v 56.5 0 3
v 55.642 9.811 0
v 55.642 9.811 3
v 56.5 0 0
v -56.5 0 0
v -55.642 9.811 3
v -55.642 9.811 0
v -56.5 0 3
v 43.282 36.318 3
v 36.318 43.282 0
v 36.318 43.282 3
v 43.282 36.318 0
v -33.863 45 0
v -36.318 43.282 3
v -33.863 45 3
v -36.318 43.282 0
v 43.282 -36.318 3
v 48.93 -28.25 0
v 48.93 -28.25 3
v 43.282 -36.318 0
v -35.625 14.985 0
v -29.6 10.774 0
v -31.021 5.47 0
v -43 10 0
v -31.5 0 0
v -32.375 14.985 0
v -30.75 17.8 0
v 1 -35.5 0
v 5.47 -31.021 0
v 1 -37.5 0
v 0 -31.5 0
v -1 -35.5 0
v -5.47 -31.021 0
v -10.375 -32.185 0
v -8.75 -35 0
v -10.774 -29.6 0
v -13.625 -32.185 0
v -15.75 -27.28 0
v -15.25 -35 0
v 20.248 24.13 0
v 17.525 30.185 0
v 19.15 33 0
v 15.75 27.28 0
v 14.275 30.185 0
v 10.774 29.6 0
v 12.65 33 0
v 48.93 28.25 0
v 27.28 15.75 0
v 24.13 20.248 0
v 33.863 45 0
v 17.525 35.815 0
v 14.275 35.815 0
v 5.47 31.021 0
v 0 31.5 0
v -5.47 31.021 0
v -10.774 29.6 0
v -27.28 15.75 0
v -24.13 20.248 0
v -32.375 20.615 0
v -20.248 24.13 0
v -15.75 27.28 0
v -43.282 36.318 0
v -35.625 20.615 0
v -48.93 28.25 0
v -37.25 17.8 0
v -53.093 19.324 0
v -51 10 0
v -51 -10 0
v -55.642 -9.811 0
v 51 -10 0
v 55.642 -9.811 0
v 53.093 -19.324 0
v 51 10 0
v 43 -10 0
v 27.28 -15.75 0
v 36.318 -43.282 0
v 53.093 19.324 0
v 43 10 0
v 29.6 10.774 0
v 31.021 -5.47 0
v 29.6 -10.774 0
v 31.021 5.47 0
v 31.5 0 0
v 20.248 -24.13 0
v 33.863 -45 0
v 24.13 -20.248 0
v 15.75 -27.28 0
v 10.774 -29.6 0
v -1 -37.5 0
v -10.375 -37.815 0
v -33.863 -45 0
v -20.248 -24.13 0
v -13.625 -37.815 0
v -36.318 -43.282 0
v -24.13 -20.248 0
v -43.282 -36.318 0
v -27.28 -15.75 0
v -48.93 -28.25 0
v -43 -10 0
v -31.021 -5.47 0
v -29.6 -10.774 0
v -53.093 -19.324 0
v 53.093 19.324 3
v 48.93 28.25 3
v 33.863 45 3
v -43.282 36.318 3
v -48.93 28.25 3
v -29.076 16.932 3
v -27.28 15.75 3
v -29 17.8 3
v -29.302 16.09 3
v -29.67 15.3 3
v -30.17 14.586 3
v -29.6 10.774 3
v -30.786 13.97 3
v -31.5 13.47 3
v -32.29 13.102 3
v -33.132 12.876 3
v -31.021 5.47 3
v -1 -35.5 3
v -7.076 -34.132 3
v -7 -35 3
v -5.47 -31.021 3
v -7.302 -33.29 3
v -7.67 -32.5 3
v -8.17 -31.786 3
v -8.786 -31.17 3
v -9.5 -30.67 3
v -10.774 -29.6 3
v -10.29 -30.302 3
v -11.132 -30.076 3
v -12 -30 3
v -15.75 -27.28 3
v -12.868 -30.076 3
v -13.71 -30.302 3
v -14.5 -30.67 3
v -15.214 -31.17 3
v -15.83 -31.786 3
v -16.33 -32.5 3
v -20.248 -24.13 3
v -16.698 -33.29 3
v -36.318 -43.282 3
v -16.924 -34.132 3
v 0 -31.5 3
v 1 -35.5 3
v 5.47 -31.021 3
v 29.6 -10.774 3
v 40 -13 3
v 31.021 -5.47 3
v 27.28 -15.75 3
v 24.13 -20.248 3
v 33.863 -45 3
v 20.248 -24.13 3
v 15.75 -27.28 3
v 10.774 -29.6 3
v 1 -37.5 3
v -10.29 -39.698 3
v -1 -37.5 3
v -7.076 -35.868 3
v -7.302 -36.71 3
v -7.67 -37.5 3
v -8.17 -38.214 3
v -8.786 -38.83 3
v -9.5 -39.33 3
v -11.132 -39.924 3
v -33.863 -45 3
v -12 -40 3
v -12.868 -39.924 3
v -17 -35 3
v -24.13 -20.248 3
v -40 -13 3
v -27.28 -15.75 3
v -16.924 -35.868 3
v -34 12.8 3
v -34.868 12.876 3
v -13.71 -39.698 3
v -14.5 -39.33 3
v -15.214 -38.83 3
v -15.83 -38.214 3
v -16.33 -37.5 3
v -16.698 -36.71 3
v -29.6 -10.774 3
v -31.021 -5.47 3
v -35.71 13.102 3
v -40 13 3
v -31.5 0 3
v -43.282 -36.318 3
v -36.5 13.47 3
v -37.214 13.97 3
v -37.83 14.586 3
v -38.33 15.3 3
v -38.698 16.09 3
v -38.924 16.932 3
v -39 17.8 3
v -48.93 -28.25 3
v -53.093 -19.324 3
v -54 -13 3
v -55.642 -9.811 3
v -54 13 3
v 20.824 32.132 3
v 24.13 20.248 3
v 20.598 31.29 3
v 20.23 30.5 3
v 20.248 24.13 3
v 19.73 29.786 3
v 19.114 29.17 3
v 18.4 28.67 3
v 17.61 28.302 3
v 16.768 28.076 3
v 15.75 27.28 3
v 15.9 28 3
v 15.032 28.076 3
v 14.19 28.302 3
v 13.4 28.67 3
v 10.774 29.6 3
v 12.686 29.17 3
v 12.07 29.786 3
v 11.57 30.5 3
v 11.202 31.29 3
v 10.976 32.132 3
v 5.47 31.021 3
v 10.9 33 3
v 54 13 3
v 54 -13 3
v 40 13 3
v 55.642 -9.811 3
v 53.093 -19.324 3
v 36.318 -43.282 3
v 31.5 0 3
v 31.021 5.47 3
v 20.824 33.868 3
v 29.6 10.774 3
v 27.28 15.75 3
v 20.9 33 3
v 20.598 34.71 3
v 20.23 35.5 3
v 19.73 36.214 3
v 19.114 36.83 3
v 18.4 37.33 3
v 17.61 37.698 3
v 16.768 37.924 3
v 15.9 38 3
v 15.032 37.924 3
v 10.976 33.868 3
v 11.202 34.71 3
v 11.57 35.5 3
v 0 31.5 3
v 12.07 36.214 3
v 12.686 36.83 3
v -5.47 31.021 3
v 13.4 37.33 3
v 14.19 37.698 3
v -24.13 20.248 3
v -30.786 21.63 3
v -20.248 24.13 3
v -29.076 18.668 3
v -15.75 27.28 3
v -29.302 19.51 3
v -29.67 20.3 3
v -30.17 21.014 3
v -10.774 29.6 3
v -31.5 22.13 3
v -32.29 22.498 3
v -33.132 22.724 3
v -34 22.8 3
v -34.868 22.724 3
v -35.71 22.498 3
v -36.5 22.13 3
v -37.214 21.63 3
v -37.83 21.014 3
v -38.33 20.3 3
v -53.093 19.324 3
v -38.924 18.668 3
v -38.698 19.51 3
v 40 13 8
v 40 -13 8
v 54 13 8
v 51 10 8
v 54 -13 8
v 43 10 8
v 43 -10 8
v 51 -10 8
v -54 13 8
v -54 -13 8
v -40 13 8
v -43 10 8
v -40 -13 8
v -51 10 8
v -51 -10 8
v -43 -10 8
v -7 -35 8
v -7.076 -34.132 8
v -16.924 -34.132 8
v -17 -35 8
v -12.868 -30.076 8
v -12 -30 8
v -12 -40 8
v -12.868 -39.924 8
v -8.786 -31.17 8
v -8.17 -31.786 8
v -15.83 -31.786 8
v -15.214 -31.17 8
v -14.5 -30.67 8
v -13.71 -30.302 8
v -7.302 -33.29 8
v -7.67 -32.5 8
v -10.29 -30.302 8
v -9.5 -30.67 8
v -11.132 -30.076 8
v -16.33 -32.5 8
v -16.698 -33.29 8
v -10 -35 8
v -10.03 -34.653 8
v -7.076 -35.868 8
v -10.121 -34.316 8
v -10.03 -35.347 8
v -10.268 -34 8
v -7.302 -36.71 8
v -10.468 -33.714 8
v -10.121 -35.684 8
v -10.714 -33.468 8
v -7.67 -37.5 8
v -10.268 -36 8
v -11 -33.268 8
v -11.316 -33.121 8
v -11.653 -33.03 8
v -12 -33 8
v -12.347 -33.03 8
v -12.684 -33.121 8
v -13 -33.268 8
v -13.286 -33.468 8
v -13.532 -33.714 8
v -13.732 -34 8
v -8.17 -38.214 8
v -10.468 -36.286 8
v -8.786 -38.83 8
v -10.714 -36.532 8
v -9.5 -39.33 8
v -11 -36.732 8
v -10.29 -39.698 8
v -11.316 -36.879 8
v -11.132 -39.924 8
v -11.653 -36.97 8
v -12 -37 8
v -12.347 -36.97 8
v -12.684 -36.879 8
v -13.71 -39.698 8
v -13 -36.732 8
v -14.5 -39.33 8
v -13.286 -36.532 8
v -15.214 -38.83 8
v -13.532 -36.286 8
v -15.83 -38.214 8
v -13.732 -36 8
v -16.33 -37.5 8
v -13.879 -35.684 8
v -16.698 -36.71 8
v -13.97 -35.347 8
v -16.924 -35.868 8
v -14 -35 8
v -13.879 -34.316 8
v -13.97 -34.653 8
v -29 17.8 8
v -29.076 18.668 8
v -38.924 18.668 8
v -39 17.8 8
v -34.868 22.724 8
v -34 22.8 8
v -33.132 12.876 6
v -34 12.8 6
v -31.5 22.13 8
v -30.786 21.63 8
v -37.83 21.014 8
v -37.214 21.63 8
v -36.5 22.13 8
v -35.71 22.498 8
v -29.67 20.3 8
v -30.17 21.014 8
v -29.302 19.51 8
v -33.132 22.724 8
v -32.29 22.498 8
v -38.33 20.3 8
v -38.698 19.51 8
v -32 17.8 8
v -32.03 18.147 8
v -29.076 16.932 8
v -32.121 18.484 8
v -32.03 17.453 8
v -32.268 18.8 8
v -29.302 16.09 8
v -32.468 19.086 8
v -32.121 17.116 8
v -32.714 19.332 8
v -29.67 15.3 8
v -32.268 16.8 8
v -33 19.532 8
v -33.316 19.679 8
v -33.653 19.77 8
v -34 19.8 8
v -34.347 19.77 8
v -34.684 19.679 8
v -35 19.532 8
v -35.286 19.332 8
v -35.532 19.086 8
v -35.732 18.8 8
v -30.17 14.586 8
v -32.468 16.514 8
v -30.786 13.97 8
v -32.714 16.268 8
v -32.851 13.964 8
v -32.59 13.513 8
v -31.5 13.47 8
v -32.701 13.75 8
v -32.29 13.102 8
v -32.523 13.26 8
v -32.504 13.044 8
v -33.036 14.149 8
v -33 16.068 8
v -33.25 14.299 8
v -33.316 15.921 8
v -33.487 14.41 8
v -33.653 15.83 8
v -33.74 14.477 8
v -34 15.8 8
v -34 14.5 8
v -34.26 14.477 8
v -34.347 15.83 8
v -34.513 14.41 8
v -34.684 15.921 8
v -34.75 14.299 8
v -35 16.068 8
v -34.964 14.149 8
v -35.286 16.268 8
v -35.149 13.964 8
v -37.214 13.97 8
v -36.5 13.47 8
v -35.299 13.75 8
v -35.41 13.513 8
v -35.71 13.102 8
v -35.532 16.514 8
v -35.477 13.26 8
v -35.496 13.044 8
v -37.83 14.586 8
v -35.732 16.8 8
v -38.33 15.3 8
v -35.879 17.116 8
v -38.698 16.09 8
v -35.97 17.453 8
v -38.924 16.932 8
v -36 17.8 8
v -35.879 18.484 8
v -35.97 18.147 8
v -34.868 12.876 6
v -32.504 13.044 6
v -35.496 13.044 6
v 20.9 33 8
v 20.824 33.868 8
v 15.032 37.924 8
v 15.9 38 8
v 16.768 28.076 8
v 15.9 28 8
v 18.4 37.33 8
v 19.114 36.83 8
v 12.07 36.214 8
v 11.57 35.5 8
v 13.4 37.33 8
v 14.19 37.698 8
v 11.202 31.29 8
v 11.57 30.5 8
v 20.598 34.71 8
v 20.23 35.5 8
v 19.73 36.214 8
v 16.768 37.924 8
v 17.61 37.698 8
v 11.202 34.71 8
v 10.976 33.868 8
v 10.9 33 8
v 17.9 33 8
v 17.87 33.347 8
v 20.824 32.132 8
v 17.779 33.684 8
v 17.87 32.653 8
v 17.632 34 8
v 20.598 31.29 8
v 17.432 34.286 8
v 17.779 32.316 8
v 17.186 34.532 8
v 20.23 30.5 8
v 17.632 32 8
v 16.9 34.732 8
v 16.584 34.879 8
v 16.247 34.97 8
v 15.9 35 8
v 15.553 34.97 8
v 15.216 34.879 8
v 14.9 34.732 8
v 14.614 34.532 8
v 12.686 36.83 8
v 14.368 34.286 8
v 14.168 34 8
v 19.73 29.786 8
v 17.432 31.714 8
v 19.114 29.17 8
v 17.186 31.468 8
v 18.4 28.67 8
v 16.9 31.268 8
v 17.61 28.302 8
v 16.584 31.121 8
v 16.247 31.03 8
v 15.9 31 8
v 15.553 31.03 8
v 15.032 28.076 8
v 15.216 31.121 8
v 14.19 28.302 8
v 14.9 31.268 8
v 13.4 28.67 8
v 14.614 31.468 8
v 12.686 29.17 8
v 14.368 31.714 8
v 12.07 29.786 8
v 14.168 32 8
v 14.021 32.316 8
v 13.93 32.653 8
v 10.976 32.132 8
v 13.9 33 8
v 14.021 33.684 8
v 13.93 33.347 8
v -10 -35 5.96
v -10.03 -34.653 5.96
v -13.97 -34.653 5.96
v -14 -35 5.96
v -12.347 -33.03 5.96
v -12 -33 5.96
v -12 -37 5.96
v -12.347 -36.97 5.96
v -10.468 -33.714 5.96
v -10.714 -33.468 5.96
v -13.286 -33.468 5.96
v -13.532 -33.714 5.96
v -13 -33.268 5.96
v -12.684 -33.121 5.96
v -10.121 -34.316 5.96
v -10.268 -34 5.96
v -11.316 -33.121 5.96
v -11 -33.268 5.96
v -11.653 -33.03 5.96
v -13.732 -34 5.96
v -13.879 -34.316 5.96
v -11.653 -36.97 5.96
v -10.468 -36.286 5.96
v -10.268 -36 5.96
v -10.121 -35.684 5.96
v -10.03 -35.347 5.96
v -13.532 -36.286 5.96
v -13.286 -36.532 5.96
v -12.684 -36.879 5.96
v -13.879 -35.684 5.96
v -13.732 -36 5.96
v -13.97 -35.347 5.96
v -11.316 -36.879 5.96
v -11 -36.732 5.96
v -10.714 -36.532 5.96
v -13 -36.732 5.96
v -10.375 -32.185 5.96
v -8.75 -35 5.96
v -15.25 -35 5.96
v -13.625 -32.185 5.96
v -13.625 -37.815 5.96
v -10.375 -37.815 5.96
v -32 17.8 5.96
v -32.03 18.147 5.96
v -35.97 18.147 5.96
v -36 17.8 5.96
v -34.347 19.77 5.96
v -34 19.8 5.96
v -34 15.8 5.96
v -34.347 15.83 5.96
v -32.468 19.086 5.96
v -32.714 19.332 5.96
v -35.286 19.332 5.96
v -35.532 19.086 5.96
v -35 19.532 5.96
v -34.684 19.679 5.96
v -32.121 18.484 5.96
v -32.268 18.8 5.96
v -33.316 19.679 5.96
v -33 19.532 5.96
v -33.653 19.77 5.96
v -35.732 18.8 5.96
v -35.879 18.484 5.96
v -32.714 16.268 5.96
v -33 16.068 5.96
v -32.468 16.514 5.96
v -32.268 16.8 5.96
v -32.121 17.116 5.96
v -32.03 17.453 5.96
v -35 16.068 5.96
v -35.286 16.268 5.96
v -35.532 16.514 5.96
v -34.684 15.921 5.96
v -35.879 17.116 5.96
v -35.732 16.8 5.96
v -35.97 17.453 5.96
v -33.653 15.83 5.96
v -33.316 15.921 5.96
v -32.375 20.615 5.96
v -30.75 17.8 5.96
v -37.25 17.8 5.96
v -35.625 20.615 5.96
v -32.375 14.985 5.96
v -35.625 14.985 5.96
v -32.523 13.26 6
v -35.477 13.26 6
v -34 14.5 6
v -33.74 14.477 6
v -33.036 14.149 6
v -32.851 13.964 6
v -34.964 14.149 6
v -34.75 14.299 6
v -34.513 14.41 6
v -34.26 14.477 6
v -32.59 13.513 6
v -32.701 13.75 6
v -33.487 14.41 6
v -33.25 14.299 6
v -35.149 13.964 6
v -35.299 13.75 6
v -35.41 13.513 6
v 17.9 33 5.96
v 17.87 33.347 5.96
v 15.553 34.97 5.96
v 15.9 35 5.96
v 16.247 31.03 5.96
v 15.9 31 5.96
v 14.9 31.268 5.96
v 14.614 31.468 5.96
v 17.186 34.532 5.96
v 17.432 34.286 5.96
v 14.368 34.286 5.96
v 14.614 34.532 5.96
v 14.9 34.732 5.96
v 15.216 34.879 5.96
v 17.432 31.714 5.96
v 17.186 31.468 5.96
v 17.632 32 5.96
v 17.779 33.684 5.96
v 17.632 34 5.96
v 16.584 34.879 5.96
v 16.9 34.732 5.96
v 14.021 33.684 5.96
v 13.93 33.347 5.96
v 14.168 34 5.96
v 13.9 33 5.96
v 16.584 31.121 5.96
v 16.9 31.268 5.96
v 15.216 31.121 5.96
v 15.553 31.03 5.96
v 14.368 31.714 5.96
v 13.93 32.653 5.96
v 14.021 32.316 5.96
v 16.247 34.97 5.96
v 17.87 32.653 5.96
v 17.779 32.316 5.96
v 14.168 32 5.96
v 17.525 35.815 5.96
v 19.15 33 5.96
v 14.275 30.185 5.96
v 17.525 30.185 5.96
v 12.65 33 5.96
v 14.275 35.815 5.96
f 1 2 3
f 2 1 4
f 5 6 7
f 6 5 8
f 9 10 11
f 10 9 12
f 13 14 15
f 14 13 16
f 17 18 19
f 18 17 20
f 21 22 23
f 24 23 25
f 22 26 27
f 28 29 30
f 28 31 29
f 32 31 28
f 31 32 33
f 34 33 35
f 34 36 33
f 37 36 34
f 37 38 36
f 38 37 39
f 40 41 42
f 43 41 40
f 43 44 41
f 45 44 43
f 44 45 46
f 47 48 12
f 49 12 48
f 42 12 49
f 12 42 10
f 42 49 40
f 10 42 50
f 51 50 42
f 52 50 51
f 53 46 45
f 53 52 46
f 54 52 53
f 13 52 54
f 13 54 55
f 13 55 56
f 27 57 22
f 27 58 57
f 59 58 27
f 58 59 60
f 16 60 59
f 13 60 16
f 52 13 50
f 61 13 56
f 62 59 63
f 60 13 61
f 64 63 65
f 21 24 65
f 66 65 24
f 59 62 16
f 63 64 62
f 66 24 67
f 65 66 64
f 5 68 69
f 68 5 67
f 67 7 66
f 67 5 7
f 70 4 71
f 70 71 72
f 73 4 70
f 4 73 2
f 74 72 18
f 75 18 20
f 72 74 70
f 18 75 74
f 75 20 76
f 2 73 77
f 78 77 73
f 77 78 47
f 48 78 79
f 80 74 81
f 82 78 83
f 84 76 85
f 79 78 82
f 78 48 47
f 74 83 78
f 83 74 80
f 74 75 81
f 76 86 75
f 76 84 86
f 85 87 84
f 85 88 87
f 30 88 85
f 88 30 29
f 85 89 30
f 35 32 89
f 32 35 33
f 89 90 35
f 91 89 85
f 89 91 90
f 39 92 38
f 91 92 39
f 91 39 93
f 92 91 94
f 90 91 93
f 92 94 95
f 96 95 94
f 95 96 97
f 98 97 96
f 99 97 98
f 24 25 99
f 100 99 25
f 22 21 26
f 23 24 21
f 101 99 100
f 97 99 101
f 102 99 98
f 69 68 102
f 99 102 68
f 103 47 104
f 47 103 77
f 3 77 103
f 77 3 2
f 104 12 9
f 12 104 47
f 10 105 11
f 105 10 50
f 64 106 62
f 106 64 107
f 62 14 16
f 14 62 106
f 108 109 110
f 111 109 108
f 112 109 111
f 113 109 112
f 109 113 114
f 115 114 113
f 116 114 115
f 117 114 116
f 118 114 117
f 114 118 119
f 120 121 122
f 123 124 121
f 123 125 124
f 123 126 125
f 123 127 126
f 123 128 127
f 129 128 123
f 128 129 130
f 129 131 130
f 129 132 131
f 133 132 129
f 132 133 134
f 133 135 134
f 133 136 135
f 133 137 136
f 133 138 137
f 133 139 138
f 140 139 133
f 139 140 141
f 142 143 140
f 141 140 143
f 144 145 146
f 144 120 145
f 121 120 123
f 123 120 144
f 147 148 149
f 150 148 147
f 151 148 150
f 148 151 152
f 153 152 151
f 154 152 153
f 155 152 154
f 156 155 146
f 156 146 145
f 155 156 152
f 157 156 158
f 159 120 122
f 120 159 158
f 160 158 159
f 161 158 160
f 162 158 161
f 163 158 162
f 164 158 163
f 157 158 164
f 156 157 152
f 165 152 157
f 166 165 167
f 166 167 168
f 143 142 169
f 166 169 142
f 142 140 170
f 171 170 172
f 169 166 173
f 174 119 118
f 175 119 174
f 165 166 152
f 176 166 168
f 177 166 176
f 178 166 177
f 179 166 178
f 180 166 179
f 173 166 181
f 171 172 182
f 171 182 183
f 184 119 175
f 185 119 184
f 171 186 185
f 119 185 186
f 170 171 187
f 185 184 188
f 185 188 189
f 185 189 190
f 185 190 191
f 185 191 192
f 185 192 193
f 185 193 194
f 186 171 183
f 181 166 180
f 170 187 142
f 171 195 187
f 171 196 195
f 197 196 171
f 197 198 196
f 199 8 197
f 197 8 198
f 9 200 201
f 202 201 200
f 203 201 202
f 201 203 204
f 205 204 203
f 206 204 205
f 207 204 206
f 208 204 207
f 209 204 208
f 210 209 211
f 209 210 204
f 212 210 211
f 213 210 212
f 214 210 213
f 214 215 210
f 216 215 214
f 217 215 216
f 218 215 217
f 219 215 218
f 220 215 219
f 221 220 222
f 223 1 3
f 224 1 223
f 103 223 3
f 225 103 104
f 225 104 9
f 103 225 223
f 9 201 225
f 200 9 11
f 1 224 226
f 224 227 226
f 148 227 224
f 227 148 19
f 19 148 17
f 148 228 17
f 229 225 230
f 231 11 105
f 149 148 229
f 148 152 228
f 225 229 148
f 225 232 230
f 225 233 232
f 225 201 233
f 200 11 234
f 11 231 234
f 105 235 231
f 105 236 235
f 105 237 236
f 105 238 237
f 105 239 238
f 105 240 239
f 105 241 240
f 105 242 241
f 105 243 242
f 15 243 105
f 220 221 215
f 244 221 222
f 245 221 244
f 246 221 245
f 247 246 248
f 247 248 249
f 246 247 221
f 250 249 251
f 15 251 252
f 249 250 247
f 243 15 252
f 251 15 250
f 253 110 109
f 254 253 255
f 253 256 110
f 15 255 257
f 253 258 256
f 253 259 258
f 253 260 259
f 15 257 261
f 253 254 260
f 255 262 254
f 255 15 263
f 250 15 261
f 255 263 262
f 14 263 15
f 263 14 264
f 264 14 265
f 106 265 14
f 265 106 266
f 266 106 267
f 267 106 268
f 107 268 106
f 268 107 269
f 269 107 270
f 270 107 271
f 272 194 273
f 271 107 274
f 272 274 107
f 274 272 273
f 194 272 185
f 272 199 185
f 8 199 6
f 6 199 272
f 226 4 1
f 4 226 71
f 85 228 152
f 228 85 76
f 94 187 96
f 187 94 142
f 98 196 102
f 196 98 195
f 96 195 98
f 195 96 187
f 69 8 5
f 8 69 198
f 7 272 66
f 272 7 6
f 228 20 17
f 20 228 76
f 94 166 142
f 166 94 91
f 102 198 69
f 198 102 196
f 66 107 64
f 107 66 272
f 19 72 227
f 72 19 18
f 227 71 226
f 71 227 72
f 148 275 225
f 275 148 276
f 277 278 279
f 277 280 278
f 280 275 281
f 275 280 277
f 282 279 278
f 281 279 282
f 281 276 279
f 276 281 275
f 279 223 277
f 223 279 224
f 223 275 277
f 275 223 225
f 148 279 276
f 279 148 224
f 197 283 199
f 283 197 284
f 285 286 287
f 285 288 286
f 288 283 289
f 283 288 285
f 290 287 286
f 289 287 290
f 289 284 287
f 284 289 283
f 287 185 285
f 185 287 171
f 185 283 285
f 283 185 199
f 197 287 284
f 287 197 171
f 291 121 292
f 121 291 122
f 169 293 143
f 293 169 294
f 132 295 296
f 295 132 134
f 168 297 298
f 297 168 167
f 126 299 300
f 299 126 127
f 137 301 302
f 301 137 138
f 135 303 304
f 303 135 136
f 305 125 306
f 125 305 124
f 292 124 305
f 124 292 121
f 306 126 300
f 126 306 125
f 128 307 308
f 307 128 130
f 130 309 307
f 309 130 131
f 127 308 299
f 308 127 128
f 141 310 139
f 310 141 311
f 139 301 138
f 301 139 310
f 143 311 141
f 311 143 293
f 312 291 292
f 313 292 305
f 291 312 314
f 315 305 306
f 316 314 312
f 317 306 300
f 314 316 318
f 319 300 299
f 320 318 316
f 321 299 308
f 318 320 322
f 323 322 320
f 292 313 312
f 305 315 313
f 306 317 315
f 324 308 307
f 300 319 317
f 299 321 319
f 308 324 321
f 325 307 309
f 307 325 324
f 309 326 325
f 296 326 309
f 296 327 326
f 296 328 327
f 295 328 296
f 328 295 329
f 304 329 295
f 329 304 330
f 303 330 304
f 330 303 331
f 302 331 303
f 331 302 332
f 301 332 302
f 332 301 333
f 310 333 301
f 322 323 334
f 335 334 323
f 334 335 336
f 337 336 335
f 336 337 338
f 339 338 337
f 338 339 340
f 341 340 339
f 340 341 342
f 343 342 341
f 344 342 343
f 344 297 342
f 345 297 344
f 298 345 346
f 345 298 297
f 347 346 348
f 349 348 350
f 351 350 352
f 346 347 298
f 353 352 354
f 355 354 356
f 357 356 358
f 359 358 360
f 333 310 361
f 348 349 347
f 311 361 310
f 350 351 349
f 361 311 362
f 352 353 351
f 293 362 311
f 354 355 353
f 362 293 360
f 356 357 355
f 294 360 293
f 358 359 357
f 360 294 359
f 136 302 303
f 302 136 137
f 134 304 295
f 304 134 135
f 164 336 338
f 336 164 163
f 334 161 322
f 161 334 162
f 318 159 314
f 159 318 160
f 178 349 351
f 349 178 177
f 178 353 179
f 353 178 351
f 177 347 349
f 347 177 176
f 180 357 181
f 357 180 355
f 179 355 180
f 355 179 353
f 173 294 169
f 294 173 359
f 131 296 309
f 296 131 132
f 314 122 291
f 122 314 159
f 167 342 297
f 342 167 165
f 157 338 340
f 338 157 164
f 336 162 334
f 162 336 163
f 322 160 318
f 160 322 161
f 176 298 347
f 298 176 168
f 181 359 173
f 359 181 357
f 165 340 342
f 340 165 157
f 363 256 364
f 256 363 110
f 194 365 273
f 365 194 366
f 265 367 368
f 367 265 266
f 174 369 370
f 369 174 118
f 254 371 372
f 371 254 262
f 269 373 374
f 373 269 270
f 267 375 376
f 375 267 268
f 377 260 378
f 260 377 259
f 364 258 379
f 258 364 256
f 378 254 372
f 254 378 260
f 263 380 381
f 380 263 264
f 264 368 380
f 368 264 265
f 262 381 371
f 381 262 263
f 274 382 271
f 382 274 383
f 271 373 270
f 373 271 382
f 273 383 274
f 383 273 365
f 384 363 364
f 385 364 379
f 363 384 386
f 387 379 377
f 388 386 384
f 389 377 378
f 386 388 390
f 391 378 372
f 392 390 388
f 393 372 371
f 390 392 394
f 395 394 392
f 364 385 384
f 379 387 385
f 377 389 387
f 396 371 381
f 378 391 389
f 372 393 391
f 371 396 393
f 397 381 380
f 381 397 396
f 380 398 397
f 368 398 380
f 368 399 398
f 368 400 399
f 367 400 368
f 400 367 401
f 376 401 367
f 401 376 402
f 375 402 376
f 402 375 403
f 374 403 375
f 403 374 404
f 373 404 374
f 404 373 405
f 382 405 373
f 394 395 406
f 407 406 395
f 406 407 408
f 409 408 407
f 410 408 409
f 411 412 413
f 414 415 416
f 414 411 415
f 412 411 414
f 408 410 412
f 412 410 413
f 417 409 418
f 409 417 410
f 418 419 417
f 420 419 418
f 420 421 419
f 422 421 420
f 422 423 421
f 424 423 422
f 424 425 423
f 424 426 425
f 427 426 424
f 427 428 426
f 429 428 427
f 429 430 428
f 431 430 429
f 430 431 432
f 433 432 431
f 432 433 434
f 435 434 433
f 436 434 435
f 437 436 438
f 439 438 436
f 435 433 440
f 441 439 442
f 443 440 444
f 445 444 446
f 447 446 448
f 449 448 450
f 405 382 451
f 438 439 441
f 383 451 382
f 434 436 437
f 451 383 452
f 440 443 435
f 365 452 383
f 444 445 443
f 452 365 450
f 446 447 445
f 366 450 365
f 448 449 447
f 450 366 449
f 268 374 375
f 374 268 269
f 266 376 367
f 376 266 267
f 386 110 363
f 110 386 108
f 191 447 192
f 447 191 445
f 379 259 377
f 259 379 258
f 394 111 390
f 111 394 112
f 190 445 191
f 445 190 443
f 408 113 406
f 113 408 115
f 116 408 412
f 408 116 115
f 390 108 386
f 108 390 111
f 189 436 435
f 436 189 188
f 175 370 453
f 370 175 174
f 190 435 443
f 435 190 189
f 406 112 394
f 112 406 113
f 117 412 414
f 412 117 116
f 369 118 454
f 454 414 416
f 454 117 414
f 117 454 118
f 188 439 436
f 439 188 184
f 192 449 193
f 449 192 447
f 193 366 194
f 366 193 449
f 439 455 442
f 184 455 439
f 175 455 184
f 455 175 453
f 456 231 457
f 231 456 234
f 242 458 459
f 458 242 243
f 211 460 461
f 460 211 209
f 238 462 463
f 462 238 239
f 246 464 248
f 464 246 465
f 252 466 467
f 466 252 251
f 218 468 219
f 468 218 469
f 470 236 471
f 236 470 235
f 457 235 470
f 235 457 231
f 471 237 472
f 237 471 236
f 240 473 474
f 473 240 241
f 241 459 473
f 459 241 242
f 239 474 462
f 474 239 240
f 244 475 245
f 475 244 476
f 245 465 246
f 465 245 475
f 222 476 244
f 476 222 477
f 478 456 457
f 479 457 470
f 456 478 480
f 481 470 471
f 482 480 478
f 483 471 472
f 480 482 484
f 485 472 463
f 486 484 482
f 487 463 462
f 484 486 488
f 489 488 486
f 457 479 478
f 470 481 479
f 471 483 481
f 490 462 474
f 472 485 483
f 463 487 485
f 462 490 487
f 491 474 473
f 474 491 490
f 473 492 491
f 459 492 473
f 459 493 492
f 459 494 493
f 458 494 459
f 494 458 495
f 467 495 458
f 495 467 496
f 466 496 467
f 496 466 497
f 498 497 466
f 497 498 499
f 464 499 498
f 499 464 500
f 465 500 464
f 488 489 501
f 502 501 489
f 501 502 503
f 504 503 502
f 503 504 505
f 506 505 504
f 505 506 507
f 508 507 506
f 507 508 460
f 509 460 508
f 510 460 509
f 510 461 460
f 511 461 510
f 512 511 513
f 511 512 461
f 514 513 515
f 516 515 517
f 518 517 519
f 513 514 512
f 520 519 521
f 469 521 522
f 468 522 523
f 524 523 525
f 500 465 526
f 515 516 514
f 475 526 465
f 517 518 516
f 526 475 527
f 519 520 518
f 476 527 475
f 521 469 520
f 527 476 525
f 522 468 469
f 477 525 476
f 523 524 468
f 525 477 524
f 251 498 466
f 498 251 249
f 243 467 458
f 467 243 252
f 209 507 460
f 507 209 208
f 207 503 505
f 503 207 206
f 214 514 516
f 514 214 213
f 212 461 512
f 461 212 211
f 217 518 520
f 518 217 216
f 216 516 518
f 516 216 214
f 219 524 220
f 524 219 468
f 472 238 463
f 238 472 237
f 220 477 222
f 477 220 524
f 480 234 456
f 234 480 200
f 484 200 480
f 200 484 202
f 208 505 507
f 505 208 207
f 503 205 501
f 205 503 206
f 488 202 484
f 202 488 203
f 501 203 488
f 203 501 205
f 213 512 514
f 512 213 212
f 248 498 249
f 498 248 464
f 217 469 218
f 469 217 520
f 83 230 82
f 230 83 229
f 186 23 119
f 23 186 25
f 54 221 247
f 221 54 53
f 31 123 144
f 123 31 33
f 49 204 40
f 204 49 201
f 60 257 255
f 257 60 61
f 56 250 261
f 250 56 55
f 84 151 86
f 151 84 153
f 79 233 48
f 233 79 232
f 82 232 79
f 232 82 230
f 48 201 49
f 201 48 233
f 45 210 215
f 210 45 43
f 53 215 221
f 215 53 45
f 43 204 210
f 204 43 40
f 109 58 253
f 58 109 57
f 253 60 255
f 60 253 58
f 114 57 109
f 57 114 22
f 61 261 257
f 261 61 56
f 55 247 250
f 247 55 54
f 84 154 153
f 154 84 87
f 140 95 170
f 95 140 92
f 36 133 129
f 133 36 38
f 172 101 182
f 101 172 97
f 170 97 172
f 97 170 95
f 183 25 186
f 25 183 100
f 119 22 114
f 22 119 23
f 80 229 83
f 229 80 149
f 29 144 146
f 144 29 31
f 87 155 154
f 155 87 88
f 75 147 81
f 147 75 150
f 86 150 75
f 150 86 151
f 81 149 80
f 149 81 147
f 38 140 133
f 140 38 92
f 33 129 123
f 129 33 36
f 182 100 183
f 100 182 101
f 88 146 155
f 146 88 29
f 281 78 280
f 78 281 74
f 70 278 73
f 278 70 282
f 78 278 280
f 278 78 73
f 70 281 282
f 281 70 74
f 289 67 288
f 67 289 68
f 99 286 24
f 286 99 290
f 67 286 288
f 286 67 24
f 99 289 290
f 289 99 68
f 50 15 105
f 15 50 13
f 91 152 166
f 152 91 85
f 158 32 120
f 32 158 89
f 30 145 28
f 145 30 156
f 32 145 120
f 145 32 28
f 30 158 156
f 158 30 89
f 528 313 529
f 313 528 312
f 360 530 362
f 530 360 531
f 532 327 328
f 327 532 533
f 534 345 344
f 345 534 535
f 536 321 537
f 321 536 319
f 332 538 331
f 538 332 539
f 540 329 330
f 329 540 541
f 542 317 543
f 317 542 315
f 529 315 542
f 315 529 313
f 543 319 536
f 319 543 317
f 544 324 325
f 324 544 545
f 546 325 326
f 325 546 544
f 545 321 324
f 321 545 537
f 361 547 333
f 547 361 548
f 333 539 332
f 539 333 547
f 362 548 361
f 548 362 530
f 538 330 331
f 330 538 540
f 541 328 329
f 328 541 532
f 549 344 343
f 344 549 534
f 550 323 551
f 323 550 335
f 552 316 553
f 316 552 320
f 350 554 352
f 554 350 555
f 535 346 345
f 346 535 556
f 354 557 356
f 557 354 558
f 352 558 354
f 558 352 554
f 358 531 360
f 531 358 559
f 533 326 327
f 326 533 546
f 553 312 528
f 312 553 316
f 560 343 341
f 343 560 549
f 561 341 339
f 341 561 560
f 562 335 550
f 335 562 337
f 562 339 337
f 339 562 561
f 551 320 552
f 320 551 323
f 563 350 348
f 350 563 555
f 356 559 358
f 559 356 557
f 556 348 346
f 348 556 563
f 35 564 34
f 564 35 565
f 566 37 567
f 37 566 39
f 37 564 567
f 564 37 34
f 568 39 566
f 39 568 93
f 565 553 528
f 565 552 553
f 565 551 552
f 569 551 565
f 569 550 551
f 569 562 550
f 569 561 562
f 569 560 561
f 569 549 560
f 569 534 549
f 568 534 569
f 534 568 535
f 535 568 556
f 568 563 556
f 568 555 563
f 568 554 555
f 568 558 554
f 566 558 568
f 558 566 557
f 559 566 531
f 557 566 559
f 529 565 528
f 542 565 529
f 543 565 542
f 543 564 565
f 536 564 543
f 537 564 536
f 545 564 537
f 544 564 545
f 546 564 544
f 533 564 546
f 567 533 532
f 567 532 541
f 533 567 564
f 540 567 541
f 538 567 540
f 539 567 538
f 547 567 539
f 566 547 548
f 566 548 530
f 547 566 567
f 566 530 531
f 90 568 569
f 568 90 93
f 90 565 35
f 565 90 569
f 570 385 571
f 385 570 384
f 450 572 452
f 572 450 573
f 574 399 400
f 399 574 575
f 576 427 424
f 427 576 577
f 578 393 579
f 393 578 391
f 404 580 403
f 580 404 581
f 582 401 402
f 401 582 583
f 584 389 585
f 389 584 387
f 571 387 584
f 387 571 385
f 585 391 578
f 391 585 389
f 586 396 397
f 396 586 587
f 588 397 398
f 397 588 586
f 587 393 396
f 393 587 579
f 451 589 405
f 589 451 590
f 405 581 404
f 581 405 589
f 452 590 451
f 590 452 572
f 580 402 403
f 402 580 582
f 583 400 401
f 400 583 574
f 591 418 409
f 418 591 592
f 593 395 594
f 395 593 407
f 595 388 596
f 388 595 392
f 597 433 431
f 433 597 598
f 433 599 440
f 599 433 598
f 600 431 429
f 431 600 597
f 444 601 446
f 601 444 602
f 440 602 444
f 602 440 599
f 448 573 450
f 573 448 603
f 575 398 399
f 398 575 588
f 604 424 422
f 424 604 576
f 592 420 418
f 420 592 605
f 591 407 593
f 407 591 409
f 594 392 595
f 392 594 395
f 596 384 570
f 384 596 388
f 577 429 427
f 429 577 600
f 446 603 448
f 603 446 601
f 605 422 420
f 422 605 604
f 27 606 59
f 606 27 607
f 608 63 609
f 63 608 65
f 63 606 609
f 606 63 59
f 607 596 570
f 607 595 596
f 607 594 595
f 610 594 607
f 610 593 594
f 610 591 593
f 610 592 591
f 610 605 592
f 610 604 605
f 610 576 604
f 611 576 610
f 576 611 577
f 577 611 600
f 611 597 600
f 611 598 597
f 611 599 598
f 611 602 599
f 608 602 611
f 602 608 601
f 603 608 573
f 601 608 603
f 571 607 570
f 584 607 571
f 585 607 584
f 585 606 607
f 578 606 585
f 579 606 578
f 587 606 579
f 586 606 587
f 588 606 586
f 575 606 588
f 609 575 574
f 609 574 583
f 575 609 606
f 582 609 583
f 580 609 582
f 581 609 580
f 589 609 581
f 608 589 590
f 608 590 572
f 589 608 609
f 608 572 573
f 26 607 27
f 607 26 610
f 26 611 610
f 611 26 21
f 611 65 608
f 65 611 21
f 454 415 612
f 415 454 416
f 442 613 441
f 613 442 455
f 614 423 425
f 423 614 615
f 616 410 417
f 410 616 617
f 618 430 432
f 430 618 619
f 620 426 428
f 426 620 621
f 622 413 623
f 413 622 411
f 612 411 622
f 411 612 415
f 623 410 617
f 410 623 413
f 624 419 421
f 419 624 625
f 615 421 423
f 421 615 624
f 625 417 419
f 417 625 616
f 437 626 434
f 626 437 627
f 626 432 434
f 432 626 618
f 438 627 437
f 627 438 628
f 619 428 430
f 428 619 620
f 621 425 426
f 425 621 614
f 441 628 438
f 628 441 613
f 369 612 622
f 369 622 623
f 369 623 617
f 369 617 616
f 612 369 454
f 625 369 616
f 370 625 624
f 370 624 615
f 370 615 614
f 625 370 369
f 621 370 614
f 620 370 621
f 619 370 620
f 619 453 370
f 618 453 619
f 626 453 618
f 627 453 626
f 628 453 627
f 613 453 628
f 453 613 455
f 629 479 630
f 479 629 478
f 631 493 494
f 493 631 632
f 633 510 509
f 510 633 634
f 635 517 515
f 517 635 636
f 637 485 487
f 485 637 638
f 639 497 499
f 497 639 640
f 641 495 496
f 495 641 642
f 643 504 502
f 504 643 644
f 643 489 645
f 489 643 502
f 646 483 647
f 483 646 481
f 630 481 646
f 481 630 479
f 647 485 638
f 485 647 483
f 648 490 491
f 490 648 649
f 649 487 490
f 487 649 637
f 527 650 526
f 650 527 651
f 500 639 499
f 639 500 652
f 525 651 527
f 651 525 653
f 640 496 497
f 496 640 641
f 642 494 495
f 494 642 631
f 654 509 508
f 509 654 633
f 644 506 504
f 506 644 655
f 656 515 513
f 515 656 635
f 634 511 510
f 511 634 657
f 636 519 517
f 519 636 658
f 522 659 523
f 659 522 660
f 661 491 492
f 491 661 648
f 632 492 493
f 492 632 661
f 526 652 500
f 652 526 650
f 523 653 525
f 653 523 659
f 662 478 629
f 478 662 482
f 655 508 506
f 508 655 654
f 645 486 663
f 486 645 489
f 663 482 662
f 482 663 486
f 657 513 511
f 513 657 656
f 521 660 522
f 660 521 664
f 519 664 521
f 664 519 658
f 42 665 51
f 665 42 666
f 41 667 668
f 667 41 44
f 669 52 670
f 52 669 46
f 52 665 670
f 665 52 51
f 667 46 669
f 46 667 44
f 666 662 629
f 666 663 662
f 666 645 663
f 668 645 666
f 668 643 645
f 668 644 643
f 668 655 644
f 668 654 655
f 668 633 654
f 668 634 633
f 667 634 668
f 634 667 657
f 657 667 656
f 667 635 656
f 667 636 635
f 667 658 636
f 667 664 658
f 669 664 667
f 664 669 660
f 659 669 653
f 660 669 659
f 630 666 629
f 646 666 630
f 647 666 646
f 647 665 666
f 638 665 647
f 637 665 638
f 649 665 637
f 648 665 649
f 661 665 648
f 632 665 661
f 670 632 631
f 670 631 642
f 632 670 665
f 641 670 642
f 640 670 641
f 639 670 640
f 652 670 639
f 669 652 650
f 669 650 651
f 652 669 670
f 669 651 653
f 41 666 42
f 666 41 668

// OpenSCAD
// PCB_MountTop for Kobalt rounter in Maslow4

DCenter = 63;  // Hole a little bigger
DBase = 113;
HBase = 3;
BrushDist = 80;
BarW = 8;
BarL = 20;
WallT = 3;
WallH = 8;
BoltD = 4;
NutD = 6.5;
PostD = 10;
$fn = 36;



difference() {
	union() {
      // Base
        cylinder(h=HBase, d=DBase, center=false);
      // Right support
        translate([BrushDist/2, -(BarL + WallT + WallT)/2,0])
            cube([BarW + WallT + WallT, 
                BarL + WallT + WallT, WallH]);
        // Left Support
        translate([-(BrushDist/2 + BarW + WallT + WallT),
            -(BarL + WallT + WallT)/2,0])
            cube([BarW + WallT + WallT, 
                BarL + WallT + WallT, WallH]);

        // Ring for test print
        //cylinder(h=1, d=74);
        
        // Pin1
        //translate([-12,-40,0])
            //cube([1,50,2]);
        translate([-12,-35,0])
            cylinder(h=WallH, d=PostD);
        // Pin2
        //translate([-12,-40,0])
            //cylinder(h=3, r=58);
        translate([-34,17.8,0])
            cylinder(h=WallH, d=PostD);   
        // Pin3     
        //translate([-34,13.8,0])
            //cylinder(h=4, r=53.5);
        translate([15.9,33,0])
            cylinder(h=WallH, d=PostD);   
    } 
	
    // Cut center hole
    translate([0,0,-.1])
        cylinder(h=HBase + 1, d=DCenter, center=false);
    // Cut LEFT Slot
    translate([BrushDist/2 + WallT, -(BarL)/2, -.1])
        cube([BarW, BarL, WallH+1]);
    // Cut Right Slot
    translate([-(BrushDist/2 + BarW + WallT),
            -(BarL)/2, -.1])
        cube([BarW, BarL, WallH+1]);

    // Cut off top of base
    translate([-100,45,-1])
        cube ([200,200,20]);
    // Cut off top of base
    translate([-100,-245,-1])
        cube ([200,200,20]);

//       translate([0,0,-.04])
//          cylinder(h=2, d=65);

    // Index Mark 6 o'clock
    translate([-1,-37.5,-.04])
        cube([2,2,5]);
    // Pin1
    translate([-12,-35,-1]) 
        cylinder(h=15, d=BoltD);
    //Nut1
    translate([-12,-35,-.04]) 
        cylinder(h=WallH-2, d=NutD, $fn=6);
   
    // Pin2
    translate([-34,17.8,-1]) 
        cylinder(h=15, d=BoltD); 
    //Nut2
    translate([-34,17.8,-.04]) 
        cylinder(h=WallH-2, d=NutD, $fn=6);
    // Notch for PCB wire clearance
    translate([-34, 13, WallH-2]) 
        cylinder(h=5, d=3);    
      
    // Pin3     
    translate([15.9,33,-1]) 
        cylinder(h=15, d=BoltD);   
    //Nut3
    translate([15.9,33,-.04]) 
        cylinder(h=WallH-2, d=NutD, $fn=6);
    

	// Cross section view
    //     rotate([0,0,-90])
    //         cube([100,100,100]);

} // D1
